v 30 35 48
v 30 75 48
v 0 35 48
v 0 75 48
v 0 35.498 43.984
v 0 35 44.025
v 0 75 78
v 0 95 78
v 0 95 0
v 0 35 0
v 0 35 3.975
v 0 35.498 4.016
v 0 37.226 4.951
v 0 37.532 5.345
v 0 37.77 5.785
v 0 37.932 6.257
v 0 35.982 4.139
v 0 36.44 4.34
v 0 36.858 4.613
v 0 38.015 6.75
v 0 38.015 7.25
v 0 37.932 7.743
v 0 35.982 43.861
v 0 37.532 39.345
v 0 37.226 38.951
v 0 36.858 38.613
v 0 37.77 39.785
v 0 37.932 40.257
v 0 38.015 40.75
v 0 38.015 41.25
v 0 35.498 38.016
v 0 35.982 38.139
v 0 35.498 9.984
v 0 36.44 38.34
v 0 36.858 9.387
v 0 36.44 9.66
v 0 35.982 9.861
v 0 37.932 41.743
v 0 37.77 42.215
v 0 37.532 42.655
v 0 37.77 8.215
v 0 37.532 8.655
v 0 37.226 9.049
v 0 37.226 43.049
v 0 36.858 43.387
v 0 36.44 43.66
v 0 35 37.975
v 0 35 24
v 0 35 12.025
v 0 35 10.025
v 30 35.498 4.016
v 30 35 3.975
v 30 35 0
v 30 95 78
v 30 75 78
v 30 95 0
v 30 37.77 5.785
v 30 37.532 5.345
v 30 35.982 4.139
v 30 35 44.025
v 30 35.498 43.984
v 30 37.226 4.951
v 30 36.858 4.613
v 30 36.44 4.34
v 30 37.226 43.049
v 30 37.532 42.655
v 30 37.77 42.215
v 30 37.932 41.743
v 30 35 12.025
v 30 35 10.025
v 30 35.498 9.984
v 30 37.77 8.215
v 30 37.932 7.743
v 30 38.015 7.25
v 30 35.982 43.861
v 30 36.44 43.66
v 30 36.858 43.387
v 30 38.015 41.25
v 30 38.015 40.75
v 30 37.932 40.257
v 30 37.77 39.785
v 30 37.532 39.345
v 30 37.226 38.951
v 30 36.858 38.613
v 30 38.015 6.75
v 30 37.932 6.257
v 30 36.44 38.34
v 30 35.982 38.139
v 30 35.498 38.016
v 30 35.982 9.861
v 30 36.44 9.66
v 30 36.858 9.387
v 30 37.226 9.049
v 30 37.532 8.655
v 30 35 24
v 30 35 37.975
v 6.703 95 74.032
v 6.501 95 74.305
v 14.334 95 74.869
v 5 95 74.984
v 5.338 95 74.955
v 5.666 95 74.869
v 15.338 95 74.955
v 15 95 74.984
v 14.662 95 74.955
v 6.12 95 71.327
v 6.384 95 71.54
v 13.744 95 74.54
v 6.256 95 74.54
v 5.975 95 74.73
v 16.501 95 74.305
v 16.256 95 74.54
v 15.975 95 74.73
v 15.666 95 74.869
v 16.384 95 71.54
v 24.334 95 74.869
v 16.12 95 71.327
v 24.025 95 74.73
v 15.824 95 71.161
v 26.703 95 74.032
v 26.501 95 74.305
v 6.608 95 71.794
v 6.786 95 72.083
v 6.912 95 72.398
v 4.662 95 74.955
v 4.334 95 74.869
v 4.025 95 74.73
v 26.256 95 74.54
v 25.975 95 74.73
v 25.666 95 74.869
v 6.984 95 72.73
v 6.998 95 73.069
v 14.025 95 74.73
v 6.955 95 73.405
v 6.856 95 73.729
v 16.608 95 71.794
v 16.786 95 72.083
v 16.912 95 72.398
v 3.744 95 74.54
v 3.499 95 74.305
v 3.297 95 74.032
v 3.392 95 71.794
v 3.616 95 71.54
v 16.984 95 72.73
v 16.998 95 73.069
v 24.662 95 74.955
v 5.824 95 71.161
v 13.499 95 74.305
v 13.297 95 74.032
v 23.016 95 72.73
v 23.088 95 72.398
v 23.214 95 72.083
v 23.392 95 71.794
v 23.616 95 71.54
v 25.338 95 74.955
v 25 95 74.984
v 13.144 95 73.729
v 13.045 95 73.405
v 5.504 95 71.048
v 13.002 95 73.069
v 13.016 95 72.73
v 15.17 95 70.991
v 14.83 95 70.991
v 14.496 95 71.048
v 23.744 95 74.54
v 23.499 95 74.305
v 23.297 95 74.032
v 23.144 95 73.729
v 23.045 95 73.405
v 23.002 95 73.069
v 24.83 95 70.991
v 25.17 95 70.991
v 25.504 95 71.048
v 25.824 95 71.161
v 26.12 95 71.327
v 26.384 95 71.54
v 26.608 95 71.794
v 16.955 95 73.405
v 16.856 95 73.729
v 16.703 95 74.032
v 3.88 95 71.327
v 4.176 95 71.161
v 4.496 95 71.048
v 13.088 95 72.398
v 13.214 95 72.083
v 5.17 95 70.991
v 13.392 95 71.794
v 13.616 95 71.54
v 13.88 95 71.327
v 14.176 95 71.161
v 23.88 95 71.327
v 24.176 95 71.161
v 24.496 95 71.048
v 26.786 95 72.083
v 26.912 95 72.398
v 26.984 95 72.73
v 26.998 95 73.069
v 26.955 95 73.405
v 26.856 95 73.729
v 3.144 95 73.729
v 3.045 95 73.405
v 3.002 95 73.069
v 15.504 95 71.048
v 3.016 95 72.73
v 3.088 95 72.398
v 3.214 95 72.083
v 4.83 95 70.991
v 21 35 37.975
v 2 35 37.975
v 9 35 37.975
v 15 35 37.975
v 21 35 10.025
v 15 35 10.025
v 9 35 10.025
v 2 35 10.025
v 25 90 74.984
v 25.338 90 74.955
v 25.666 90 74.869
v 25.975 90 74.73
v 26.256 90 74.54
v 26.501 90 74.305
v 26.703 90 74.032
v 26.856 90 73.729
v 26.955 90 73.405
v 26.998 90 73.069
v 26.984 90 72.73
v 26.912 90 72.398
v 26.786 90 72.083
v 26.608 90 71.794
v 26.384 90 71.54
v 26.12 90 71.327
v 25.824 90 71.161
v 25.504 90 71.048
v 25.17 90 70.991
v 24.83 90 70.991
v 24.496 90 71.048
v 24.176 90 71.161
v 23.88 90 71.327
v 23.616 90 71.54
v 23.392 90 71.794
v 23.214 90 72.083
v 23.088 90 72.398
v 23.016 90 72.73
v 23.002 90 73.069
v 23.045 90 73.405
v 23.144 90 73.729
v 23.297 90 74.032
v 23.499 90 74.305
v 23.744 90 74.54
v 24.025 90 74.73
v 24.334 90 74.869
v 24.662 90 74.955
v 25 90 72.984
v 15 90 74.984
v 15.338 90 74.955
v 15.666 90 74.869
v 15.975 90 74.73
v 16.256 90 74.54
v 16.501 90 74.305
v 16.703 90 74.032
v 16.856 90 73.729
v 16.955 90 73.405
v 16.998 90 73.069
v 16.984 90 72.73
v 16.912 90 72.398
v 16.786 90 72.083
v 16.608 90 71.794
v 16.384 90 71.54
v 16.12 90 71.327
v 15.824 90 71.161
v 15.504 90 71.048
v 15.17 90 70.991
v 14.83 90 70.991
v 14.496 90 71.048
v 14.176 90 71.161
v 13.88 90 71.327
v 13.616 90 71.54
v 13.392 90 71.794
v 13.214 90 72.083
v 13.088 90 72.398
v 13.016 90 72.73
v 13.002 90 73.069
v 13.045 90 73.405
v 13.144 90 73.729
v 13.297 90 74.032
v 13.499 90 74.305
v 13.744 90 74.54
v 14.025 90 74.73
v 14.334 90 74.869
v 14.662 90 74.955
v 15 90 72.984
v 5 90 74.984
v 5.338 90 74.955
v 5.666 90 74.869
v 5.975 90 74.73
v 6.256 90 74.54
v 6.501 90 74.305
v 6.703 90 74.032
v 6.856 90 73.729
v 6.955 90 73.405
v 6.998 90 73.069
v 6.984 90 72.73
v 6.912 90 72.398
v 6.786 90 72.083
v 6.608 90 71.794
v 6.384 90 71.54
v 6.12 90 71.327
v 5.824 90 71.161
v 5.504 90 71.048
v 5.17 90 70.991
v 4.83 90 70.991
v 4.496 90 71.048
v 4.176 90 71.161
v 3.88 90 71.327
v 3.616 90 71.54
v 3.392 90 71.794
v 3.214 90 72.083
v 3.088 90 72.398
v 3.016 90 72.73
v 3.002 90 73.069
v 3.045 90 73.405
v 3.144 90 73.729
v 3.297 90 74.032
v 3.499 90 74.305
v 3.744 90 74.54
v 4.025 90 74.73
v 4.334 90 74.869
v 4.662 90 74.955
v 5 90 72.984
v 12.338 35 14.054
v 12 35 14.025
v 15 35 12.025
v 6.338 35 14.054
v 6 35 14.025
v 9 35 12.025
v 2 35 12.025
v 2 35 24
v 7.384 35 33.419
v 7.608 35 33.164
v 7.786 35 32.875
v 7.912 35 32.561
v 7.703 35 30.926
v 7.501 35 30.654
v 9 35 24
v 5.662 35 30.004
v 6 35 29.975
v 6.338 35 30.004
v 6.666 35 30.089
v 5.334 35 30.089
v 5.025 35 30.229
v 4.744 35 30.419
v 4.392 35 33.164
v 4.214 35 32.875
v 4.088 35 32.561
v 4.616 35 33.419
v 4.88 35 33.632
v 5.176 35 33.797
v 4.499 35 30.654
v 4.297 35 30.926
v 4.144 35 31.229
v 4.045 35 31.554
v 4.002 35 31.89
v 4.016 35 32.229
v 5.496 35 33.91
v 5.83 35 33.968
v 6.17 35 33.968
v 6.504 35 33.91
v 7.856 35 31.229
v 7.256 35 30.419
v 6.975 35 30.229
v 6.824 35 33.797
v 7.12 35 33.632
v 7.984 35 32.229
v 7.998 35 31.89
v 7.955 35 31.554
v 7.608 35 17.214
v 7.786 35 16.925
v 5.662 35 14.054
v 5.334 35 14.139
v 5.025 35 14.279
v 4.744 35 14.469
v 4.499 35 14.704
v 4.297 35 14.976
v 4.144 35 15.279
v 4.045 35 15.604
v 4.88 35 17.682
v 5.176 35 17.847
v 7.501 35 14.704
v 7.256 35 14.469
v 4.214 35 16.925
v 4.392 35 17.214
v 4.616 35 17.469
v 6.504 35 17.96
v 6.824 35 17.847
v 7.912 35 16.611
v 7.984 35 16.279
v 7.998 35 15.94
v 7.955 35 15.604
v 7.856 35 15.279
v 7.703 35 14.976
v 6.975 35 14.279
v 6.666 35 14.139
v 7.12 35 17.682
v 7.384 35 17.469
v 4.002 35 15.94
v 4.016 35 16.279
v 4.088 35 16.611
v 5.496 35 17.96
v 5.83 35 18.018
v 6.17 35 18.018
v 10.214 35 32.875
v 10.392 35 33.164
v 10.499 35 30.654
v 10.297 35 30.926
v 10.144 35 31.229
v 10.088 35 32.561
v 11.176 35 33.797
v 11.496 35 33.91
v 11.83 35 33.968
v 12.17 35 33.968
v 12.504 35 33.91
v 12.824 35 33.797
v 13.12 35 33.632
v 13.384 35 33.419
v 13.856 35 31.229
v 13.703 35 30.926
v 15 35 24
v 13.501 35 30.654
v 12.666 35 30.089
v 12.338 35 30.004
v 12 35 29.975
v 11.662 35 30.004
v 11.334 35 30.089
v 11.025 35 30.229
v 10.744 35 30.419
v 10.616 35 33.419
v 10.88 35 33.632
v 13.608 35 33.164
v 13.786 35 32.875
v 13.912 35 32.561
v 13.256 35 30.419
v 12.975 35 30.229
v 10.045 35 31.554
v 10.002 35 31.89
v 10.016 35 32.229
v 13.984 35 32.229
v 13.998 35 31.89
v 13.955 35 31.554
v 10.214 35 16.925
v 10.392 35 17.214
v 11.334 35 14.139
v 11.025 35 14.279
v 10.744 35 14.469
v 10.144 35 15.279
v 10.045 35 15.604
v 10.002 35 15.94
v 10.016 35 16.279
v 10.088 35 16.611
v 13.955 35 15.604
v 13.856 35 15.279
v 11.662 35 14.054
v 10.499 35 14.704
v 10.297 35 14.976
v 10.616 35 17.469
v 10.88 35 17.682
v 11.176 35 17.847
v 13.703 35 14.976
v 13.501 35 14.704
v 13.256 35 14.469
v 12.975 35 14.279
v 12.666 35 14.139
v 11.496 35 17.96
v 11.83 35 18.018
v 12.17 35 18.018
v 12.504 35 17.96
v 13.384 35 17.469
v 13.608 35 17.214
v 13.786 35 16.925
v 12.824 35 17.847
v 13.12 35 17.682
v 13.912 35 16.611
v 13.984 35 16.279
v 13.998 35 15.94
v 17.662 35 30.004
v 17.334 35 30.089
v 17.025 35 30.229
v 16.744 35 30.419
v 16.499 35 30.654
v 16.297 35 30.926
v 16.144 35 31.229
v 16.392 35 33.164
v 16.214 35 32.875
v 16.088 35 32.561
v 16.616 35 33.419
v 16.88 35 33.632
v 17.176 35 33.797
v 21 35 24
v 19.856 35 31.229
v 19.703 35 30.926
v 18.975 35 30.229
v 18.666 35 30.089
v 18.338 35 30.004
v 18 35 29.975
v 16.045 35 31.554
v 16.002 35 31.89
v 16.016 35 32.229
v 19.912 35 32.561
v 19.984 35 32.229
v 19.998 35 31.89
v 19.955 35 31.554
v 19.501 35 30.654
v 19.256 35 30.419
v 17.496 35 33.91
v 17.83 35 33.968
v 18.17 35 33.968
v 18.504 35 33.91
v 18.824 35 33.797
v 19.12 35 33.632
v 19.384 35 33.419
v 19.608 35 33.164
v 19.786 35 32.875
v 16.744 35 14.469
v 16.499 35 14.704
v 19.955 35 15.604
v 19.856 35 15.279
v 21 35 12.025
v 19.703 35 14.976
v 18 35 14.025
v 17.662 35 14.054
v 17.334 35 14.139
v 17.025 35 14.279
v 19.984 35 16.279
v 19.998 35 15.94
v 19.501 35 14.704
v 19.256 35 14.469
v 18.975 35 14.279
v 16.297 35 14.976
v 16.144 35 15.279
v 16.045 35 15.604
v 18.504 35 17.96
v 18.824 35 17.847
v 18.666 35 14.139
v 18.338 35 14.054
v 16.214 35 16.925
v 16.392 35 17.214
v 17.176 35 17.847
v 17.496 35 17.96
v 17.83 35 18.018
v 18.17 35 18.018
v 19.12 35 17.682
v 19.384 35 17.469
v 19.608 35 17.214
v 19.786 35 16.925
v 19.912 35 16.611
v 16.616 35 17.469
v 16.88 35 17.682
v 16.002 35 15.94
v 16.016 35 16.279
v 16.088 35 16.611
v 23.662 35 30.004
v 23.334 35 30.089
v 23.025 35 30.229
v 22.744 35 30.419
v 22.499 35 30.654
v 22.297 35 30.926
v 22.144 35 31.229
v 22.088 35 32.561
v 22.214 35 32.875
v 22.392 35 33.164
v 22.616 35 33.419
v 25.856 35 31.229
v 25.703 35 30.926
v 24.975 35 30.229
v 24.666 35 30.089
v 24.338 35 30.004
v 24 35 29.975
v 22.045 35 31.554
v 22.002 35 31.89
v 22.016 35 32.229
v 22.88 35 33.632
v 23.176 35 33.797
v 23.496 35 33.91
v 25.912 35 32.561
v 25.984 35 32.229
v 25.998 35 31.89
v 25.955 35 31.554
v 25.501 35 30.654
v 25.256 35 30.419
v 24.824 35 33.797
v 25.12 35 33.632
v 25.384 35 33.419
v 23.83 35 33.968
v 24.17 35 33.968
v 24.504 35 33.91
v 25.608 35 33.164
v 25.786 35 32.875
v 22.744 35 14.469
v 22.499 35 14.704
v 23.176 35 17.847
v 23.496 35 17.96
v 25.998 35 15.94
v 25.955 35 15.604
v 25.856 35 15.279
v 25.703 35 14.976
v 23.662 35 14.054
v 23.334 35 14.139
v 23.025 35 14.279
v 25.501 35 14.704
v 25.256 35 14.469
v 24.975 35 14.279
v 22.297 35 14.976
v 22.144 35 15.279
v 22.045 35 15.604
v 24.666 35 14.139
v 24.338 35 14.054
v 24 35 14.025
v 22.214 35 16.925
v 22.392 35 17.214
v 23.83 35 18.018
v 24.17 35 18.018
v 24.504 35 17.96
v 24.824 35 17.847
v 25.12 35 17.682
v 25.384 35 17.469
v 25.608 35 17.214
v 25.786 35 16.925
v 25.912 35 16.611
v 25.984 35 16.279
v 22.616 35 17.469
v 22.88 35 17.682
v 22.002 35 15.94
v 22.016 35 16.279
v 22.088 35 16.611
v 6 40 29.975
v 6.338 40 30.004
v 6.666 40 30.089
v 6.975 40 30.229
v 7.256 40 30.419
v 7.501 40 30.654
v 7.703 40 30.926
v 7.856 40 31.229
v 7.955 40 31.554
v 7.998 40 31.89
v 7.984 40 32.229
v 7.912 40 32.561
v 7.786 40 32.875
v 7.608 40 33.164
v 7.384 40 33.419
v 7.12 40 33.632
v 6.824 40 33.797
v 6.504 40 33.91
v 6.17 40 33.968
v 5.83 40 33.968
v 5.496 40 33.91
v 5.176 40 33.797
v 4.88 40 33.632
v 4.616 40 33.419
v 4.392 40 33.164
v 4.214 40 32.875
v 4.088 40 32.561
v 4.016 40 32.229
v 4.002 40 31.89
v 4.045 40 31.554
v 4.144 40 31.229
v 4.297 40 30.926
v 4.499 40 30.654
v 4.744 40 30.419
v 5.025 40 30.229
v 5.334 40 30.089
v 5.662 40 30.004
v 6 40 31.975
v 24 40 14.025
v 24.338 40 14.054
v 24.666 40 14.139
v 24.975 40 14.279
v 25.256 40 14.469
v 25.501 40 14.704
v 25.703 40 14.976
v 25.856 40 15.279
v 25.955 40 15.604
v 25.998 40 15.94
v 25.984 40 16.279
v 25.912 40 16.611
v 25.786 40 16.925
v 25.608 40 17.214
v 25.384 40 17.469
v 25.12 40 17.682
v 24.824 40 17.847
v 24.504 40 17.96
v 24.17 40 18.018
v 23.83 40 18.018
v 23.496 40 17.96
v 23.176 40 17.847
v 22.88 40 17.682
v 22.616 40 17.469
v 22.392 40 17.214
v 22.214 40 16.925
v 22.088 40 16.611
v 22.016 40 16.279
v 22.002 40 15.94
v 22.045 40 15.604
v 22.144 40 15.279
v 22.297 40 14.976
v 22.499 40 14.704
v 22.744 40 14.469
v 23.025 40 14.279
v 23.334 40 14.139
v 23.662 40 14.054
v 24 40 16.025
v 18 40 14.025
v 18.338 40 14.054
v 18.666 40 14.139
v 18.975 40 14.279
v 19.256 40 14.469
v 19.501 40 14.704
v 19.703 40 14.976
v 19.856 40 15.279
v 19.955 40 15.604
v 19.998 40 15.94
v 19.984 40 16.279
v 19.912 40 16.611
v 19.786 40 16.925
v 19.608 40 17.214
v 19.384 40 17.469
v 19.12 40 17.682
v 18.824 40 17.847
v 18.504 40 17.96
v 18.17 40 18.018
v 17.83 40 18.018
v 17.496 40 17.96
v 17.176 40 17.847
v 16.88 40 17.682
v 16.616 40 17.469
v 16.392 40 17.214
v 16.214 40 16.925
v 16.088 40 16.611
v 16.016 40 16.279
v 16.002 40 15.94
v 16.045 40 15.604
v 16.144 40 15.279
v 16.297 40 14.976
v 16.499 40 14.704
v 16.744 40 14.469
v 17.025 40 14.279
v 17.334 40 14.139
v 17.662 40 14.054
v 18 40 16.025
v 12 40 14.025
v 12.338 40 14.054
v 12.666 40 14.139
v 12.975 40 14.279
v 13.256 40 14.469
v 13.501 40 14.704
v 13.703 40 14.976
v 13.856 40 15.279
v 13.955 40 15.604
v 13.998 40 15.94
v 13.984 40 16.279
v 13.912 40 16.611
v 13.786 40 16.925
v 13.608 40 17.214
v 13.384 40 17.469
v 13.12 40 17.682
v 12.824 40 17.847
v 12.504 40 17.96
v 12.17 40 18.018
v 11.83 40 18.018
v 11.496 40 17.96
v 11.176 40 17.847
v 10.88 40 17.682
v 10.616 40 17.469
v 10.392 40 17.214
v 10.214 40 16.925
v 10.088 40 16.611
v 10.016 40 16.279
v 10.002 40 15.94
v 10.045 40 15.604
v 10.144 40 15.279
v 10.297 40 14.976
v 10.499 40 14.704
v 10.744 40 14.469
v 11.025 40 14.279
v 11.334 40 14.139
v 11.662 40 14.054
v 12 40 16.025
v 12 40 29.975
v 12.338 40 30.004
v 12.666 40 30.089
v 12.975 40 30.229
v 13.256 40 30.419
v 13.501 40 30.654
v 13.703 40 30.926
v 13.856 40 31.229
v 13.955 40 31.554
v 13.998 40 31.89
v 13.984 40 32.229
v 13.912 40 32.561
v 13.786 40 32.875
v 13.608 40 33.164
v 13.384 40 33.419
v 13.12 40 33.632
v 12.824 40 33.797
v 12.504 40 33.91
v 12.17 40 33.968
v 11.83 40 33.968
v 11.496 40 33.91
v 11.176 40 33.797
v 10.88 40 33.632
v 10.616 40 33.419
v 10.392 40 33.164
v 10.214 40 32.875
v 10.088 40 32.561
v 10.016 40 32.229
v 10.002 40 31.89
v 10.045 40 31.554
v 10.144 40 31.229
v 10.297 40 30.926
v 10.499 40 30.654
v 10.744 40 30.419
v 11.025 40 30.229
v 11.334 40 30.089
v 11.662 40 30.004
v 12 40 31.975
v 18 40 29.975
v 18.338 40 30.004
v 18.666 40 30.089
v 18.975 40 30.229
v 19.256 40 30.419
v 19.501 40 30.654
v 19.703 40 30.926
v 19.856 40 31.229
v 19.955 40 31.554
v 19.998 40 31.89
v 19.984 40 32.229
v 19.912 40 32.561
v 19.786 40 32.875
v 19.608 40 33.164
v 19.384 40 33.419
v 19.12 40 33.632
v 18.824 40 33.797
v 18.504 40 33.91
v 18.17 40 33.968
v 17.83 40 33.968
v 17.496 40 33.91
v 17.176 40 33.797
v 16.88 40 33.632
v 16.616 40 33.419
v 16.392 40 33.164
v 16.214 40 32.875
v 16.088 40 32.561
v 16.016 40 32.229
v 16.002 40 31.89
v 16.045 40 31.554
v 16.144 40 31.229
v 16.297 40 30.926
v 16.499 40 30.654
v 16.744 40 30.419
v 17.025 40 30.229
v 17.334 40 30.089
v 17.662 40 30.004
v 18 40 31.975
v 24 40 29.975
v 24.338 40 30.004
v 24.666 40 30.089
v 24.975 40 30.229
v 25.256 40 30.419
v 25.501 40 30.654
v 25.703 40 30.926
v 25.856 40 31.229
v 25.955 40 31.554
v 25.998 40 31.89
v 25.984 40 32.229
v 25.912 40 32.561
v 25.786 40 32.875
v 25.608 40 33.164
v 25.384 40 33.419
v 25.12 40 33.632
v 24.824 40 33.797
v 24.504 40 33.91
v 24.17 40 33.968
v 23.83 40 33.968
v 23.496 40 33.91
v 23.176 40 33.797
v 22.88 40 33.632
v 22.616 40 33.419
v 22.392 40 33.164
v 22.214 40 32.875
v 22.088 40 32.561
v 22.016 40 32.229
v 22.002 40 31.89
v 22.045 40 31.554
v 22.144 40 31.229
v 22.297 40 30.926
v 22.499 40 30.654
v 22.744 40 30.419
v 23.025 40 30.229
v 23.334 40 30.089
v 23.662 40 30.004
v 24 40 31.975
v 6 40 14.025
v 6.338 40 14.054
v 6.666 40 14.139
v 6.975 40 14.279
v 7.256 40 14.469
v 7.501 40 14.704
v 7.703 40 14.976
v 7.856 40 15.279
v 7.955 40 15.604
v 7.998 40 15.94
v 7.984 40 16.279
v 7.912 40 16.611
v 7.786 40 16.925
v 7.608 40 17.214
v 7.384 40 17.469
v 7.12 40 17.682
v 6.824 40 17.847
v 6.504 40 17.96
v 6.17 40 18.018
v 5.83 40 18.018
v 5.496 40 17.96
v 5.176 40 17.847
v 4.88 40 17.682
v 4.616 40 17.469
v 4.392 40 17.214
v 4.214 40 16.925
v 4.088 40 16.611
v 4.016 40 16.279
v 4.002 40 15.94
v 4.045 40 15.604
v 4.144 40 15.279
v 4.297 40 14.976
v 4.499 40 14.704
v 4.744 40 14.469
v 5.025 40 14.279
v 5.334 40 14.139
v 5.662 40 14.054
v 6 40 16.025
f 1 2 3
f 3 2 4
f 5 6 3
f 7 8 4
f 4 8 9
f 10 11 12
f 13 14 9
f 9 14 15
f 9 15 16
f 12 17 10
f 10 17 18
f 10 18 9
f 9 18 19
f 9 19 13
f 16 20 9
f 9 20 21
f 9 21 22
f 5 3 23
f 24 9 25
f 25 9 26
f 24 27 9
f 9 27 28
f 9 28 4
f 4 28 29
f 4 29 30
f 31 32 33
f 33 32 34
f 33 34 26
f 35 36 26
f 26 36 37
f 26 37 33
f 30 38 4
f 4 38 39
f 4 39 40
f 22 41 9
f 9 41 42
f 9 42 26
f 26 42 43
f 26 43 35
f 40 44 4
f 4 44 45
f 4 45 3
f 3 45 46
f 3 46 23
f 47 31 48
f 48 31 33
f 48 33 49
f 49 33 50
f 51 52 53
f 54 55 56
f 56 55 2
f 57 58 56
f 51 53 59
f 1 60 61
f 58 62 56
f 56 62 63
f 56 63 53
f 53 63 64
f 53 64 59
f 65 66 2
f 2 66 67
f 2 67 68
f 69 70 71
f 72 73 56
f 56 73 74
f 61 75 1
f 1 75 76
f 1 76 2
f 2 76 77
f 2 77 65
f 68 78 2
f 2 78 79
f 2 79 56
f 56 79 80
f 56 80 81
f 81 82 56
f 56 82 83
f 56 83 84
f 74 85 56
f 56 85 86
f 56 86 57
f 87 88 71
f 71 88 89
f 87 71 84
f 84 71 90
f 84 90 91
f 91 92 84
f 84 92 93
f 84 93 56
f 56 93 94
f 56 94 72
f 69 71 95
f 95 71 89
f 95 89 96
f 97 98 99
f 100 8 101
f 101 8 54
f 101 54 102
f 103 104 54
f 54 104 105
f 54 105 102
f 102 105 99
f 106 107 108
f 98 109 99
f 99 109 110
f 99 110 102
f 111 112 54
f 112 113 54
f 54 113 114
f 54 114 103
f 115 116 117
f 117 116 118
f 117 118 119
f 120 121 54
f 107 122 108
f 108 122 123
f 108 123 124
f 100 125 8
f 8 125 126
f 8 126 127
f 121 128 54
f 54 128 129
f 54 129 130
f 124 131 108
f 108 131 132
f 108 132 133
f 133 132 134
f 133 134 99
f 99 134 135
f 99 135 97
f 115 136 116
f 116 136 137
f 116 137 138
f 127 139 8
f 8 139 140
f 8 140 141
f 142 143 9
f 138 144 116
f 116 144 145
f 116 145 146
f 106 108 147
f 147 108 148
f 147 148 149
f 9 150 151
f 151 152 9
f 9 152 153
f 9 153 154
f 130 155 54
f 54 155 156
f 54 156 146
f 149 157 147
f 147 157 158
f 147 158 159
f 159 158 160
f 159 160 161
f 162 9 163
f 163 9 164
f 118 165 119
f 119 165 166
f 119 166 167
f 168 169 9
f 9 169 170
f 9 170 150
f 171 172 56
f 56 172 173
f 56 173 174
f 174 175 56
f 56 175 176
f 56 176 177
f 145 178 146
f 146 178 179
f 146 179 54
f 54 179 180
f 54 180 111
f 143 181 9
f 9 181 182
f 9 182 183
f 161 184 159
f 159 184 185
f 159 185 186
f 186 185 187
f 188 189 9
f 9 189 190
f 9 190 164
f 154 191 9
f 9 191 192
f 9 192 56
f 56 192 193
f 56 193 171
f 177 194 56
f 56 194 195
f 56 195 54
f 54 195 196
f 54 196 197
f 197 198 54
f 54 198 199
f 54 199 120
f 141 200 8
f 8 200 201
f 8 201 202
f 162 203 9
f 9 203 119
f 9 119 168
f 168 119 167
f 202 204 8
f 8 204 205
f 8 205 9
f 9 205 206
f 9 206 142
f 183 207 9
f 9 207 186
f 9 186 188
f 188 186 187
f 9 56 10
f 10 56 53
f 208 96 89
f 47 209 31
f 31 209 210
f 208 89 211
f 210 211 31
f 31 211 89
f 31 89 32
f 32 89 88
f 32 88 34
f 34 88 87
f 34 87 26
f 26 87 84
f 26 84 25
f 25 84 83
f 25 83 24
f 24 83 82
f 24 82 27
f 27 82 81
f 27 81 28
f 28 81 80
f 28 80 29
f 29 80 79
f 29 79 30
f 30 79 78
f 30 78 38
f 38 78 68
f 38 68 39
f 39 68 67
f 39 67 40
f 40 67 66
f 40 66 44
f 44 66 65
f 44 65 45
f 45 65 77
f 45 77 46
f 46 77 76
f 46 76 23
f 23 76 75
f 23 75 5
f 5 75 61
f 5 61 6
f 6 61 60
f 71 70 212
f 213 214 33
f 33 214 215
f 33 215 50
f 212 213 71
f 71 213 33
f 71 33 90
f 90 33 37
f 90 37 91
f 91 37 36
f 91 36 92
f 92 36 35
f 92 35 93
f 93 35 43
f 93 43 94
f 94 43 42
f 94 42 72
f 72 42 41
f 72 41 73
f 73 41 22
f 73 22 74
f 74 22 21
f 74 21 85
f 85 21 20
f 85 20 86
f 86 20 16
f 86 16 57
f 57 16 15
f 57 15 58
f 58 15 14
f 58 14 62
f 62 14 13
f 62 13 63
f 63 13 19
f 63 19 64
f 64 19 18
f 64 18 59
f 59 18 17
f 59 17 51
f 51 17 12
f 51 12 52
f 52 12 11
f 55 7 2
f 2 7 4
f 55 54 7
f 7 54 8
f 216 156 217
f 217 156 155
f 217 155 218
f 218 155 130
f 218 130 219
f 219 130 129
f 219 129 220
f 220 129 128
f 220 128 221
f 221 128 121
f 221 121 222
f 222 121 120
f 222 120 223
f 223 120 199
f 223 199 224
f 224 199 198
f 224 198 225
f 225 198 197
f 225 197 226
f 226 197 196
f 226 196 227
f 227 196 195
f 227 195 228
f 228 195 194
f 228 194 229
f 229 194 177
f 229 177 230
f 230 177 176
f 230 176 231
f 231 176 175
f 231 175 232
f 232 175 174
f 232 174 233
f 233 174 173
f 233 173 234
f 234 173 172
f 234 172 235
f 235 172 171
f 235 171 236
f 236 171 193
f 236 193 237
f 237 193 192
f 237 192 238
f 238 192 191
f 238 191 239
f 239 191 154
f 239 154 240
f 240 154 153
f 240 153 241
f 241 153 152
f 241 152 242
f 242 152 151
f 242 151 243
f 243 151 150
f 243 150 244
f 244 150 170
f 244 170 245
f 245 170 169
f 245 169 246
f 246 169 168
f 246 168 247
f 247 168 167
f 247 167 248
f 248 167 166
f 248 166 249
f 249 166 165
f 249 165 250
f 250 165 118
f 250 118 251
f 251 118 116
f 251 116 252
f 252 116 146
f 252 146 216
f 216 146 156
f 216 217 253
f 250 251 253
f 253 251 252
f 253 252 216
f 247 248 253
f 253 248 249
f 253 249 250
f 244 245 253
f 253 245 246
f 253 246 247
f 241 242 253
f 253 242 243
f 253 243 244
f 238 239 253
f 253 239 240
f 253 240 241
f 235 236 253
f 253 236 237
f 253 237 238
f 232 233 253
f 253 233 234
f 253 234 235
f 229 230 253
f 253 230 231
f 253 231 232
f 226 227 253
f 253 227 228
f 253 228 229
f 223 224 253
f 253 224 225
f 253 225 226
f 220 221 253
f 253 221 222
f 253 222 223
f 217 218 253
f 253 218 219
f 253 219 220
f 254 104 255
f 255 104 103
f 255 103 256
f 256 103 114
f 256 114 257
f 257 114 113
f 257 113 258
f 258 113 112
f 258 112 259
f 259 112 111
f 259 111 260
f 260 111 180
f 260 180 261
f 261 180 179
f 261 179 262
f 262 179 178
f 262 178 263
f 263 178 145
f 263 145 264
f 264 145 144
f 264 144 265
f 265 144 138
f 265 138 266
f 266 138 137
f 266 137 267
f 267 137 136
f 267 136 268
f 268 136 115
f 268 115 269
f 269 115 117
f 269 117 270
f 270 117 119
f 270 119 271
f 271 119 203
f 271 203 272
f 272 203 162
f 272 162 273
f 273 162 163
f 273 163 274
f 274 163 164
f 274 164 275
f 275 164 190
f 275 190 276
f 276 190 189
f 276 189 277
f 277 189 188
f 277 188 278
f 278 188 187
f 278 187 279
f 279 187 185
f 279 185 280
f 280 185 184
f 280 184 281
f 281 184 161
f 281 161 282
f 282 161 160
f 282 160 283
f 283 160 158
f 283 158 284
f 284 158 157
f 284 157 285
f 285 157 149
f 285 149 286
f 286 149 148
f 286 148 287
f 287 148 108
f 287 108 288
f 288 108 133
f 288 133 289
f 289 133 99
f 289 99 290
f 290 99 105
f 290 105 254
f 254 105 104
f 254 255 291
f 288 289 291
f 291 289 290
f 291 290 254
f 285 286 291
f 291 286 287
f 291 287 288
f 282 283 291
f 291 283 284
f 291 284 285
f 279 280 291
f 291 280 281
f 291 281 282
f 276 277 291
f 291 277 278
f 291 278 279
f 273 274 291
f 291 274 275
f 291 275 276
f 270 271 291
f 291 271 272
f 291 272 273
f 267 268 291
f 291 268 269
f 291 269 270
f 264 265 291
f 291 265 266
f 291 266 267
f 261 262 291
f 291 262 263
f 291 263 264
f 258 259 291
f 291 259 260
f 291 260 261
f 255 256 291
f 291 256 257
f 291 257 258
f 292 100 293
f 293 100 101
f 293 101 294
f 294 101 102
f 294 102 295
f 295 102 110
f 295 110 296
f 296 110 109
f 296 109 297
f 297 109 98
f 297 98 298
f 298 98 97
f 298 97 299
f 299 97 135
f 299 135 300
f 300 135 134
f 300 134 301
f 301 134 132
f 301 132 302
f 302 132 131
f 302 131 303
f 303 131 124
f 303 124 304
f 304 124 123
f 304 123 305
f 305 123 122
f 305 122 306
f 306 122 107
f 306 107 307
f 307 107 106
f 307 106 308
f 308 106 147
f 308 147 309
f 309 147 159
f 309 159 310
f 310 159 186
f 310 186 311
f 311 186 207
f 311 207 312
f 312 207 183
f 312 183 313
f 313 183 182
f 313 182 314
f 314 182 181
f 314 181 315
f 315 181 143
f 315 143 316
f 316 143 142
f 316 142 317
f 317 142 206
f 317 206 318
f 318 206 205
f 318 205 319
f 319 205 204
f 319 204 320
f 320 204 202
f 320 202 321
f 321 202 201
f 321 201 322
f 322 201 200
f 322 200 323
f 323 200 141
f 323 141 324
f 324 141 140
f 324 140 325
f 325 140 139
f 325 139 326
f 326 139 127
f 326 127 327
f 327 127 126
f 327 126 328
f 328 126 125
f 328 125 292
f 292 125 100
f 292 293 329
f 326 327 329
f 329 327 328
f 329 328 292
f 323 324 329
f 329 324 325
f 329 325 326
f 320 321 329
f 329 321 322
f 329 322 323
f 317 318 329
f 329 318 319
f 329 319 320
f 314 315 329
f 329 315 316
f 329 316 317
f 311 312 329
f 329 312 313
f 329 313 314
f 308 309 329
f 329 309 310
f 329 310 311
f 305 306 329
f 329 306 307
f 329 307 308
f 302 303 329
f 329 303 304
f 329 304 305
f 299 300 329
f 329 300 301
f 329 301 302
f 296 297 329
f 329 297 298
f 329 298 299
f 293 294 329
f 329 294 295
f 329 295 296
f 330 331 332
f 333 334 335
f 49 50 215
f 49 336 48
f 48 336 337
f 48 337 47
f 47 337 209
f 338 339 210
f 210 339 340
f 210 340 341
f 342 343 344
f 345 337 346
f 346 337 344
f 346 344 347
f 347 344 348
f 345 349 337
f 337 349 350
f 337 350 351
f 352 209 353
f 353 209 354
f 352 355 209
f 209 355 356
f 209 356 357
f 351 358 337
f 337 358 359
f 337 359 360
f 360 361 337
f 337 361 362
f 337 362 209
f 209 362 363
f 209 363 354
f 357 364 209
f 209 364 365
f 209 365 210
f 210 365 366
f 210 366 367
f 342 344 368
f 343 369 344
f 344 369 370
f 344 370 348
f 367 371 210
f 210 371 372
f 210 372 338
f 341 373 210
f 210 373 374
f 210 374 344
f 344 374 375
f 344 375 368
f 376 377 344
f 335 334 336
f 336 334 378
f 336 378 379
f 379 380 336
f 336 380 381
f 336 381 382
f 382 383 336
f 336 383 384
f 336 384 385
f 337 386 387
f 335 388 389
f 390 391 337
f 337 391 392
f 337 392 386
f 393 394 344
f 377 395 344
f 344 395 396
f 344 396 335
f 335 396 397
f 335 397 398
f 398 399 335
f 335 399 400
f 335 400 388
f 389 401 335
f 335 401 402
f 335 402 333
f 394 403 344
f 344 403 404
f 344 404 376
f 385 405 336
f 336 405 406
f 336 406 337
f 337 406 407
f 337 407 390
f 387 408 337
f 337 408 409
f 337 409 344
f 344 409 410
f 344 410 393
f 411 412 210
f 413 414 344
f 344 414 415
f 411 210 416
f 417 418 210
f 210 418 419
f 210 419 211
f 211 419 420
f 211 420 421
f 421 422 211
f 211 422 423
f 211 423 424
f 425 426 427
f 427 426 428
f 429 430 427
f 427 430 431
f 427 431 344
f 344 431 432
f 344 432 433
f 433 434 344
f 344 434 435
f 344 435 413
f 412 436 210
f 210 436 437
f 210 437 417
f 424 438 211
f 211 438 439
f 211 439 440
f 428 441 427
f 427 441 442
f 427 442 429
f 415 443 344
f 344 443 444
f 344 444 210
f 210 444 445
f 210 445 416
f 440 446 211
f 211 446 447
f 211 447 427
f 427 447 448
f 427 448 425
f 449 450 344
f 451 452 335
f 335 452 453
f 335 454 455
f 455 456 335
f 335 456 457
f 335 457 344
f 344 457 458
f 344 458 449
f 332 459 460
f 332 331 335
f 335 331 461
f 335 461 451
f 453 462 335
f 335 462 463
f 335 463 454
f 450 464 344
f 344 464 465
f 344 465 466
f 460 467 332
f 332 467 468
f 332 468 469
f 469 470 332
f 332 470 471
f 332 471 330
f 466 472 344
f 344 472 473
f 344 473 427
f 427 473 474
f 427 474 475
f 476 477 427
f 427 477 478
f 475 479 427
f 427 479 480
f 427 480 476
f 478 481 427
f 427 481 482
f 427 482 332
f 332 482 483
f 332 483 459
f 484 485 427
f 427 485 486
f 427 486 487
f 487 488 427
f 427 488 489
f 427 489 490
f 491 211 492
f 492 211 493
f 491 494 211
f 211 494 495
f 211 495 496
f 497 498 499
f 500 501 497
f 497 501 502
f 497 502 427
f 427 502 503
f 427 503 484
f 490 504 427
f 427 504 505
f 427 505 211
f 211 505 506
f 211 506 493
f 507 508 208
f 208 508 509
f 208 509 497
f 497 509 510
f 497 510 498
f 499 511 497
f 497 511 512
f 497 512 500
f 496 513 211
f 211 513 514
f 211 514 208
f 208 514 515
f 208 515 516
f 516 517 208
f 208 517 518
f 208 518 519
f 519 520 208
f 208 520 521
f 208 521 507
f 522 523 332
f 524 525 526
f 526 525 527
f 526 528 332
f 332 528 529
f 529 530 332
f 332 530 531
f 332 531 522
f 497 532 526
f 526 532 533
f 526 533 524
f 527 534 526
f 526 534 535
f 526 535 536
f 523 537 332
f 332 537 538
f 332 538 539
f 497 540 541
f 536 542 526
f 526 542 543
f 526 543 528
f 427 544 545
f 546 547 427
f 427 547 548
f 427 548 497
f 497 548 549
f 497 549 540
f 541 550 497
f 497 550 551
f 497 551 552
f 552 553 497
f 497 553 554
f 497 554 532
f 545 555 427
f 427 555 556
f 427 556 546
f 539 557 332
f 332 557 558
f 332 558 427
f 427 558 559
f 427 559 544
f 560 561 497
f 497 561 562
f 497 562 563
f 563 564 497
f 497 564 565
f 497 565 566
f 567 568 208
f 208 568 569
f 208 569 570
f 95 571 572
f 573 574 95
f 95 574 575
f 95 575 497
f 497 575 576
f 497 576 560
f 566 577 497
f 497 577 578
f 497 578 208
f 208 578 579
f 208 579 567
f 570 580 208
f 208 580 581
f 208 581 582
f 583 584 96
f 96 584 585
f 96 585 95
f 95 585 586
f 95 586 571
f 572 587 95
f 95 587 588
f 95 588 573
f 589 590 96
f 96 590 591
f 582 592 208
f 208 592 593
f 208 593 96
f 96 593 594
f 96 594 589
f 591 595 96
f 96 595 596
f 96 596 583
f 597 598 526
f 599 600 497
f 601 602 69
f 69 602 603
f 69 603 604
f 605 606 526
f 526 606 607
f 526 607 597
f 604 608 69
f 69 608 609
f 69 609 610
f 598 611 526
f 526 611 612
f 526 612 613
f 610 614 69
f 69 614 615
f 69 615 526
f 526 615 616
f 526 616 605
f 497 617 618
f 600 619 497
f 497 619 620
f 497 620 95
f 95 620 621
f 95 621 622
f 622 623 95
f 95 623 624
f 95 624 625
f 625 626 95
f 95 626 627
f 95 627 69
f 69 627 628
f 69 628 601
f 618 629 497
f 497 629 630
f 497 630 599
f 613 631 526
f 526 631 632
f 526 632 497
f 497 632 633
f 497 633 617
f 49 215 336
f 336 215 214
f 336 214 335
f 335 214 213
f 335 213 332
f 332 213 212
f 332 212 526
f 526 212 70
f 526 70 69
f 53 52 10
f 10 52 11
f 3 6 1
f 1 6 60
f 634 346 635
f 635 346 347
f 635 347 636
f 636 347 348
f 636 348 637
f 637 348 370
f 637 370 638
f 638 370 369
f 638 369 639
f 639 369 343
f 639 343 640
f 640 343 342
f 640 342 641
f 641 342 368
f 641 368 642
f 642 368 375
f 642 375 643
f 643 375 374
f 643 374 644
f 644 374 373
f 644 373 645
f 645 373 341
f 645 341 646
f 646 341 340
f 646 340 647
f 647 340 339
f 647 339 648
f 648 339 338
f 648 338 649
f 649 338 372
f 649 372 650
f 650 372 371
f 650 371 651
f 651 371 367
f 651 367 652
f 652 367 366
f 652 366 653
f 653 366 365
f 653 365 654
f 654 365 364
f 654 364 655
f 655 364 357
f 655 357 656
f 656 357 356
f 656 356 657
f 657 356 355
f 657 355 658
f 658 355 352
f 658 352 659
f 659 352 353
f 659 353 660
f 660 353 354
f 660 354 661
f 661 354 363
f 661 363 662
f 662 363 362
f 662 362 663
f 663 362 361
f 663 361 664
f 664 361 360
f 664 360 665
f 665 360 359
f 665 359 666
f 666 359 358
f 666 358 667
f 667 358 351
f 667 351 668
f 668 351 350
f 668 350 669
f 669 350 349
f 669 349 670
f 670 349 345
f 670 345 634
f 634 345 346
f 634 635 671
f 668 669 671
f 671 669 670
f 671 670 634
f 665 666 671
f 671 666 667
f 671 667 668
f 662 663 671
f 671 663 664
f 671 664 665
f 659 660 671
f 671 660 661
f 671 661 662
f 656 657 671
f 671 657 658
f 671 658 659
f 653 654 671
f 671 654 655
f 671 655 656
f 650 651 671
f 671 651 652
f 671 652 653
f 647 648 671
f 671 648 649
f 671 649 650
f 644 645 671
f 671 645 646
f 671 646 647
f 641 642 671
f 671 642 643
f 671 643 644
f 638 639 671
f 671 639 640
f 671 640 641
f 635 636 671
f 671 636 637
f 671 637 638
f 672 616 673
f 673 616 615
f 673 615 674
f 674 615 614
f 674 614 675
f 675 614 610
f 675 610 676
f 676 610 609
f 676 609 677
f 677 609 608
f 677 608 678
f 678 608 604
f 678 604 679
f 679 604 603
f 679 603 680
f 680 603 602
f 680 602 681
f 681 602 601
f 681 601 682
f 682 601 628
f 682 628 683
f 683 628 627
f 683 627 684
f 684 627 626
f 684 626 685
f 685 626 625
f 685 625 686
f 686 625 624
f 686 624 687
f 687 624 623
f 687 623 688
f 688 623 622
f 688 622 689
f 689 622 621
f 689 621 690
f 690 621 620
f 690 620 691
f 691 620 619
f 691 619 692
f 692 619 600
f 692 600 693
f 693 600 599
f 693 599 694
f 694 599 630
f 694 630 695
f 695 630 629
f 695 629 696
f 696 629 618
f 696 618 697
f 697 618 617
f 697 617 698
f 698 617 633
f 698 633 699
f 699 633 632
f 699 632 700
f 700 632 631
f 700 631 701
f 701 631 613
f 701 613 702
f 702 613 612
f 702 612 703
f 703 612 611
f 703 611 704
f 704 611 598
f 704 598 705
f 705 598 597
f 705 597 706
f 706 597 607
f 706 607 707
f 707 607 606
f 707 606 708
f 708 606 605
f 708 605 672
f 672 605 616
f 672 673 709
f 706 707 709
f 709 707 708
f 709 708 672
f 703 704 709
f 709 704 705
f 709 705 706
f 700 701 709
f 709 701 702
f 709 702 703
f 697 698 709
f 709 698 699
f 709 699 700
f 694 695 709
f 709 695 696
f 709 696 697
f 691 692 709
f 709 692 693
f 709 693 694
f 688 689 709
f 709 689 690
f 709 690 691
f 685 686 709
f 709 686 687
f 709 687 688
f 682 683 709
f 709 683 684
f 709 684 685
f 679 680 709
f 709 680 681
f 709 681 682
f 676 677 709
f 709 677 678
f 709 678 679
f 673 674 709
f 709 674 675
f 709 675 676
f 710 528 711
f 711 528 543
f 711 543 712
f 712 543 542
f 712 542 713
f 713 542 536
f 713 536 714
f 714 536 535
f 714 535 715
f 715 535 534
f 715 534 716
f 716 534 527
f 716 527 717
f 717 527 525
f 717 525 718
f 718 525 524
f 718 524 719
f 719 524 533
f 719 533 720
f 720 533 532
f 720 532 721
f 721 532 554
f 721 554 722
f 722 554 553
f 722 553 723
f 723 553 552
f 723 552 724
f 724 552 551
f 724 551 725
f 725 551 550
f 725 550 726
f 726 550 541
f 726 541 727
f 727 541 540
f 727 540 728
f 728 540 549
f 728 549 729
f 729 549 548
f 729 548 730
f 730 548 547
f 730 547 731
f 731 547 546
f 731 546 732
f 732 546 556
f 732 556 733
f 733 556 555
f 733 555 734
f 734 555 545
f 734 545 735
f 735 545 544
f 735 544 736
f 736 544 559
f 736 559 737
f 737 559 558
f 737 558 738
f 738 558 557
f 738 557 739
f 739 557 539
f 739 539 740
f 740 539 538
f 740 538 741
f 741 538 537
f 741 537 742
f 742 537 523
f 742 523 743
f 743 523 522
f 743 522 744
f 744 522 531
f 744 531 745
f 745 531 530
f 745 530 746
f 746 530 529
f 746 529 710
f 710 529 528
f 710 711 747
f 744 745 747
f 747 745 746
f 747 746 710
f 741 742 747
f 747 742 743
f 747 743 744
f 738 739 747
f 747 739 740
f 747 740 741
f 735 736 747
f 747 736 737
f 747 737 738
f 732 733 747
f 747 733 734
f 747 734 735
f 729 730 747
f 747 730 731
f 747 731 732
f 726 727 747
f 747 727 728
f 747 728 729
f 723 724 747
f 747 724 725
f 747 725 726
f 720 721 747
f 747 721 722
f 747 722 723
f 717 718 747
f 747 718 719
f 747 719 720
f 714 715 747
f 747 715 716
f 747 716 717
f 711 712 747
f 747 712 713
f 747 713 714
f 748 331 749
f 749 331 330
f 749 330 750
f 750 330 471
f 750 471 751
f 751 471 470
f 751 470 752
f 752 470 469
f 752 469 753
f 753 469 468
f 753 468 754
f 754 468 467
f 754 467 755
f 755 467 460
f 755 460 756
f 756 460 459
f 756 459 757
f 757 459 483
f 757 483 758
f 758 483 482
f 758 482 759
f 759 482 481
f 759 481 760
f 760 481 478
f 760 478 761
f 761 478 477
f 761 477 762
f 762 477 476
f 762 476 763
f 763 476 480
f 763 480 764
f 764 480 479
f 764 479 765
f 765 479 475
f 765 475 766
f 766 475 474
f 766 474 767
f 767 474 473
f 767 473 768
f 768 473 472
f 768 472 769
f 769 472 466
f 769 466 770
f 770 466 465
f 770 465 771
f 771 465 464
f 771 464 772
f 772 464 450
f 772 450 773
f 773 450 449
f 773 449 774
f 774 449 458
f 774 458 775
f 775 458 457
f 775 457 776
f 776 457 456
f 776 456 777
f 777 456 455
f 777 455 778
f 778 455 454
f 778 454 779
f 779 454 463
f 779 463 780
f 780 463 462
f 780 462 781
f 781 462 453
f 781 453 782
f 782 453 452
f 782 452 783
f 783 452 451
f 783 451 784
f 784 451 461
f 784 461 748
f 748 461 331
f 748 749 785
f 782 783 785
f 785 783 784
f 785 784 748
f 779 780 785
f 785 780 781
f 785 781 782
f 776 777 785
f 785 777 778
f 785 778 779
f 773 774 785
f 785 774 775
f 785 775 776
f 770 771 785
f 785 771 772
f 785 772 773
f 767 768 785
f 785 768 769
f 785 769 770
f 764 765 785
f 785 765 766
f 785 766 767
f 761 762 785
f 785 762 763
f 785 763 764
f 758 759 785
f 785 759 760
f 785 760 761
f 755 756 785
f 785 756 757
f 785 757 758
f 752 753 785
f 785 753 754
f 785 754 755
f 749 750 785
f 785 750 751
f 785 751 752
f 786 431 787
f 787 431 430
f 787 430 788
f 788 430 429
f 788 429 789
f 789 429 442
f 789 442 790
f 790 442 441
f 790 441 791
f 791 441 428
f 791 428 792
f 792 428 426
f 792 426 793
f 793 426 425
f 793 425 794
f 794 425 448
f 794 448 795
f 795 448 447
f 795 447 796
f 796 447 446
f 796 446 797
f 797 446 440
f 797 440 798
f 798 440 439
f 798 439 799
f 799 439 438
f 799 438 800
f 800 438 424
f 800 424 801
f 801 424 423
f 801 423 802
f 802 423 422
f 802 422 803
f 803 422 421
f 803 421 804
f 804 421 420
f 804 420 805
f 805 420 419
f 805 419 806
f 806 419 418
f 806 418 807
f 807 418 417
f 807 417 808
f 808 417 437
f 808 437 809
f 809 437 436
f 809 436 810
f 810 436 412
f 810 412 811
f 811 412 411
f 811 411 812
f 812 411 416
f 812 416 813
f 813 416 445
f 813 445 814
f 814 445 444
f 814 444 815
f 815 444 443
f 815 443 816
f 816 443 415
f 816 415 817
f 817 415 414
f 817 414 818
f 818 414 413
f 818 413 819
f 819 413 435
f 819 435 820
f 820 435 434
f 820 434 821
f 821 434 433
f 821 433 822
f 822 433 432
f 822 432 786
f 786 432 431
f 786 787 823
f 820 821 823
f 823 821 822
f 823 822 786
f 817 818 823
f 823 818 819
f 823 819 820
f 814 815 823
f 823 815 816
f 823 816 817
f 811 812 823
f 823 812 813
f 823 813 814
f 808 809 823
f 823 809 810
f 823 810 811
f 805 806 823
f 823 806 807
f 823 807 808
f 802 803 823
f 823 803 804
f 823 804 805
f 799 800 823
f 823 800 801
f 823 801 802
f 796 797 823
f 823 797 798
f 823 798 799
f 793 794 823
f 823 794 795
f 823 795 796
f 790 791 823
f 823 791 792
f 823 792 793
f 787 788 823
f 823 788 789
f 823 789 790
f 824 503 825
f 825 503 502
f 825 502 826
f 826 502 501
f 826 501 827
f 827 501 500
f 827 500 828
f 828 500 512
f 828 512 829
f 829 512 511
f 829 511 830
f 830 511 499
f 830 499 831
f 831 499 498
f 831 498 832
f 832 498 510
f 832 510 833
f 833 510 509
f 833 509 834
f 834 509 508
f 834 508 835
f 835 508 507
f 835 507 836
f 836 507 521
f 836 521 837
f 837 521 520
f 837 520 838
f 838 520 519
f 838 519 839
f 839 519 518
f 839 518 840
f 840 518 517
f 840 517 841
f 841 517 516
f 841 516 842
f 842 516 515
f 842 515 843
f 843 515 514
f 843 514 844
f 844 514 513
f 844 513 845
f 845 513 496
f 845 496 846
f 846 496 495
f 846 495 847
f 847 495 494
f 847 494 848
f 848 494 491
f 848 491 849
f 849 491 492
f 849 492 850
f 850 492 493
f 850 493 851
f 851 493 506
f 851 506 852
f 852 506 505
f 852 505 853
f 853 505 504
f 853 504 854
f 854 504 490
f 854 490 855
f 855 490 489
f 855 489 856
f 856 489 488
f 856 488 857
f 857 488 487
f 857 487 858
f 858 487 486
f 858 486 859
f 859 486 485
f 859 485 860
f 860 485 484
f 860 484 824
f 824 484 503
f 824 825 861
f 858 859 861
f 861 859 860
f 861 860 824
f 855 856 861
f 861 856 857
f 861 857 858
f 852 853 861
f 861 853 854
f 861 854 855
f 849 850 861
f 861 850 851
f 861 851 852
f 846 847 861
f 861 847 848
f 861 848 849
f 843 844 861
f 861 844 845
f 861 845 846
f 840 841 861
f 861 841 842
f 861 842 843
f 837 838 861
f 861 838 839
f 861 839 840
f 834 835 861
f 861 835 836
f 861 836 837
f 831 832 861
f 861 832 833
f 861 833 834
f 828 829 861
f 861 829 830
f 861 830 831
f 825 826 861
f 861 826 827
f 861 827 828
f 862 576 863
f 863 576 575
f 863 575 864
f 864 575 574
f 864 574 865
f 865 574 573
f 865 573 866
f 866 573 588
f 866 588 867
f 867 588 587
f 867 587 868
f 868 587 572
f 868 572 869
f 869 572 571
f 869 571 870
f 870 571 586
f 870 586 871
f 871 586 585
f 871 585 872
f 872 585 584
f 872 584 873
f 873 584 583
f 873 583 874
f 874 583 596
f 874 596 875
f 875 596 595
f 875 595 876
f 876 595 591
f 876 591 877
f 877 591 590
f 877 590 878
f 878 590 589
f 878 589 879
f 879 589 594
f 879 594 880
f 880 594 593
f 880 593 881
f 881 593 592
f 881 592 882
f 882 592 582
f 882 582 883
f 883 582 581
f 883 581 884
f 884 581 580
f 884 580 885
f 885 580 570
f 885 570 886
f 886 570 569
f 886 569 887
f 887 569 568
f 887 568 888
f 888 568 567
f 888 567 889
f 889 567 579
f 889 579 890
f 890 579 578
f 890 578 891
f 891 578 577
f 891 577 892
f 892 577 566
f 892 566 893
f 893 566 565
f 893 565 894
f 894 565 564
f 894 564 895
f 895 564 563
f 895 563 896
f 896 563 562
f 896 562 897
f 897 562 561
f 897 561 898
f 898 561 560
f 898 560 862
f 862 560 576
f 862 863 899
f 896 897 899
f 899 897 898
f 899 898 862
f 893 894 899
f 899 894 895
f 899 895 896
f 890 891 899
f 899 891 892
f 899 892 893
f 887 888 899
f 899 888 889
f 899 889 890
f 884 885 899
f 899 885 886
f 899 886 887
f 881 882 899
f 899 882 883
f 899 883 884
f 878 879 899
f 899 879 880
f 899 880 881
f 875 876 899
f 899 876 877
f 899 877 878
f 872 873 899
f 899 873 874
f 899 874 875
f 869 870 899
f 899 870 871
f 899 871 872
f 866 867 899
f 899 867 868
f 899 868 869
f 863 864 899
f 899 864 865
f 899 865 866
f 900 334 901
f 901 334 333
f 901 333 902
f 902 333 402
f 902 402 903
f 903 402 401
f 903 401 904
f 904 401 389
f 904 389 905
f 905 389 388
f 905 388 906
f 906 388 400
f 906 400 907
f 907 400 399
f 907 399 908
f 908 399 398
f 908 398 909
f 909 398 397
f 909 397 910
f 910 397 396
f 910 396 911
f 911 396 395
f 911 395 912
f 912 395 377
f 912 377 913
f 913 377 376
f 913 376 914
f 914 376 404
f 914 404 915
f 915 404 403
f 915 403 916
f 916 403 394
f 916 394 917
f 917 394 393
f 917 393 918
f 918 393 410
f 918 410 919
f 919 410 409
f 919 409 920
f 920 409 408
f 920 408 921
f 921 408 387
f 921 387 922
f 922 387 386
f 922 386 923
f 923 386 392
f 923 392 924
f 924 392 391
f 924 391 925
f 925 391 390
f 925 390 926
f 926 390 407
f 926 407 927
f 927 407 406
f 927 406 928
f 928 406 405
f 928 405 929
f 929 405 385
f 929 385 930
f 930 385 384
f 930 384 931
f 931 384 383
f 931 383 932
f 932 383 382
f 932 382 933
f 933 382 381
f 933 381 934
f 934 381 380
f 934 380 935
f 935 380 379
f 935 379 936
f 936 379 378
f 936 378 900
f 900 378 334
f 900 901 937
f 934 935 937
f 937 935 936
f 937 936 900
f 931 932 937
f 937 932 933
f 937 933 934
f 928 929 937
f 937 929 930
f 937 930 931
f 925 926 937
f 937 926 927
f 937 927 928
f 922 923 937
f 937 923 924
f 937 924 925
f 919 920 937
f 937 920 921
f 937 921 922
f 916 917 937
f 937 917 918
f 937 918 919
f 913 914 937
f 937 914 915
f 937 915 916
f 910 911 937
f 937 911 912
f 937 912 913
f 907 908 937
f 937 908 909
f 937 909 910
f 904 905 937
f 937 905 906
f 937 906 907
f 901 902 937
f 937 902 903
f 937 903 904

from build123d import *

# Parameters (mm, degrees)
SKETCH_1_W          = 30
SKETCH_1_H          = 95
EXTRUDE_1_DEPTH     = 48
SKETCH_2_R          = 3.025
SKETCH_2_R_2        = 3.005
CUT_EXTRUDE_1_DEPTH = 46
SKETCH_3_W          = 30
SKETCH_3_H          = 20
EXTRUDE_2_DEPTH     = 30
SKETCH_4_R          = 2
CUT_EXTRUDE_2_DEPTH = 5
SKETCH_5_W          = 48
SKETCH_5_H          = 35
CUT_EXTRUDE_3_DEPTH = 127.526677029
SKETCH_6_R          = 2
CUT_EXTRUDE_4_DEPTH = 5


with BuildPart() as part:
    # 草图1 → 凸台-拉伸1 (new body)
    with BuildSketch(Plane.XY):
        with Locations((15, 47.5)):
            Rectangle(SKETCH_1_W, SKETCH_1_H)
    extrude(amount=EXTRUDE_1_DEPTH)

    # 草图2 → 切除-拉伸1 (cut)
    # profile 1 of 2: a face of its own
    with BuildSketch(Plane.ZY):
        with Locations((7, 35)):
            Circle(SKETCH_2_R)
        with Locations((7, 35)):
            Circle(SKETCH_2_R_2, mode=Mode.SUBTRACT)
    # profile 2 of 2: a face of its own
    with BuildSketch(Plane.ZY):
        with Locations((41, 35)):
            Circle(SKETCH_2_R)
        with Locations((41, 35)):
            Circle(SKETCH_2_R_2, mode=Mode.SUBTRACT)
    extrude(amount=-CUT_EXTRUDE_1_DEPTH, mode=Mode.SUBTRACT)


with BuildPart() as cut_extrude_1_kept_piece:
    # of the separate pieces the step leaves, the one the design keeps (cut_extrude_1_pieces_kept)
    add(part.part.solids().sort_by_distance((0, 0, 0))[0])

    # 草图3 → 凸台-拉伸2 (add)
    with BuildSketch(Plane.XY.offset(48)):
        with Locations((15, 85)):
            Rectangle(SKETCH_3_W, SKETCH_3_H)
    extrude(amount=EXTRUDE_2_DEPTH)

    # 草图4 → 切除-拉伸2 (cut)
    with BuildSketch(Plane(origin=(0, 95, 0), x_dir=(1, 0, 0), z_dir=(0, 1, 0))):
        with Locations(Location((5, -72.983651548, 0), (0, 0, 270))):
            Circle(SKETCH_4_R)
        with Locations(Location((15, -72.983651548, 0), (0, 0, 270))):
            Circle(SKETCH_4_R)
        with Locations(Location((25, -72.983651548, 0), (0, 0, 270))):
            Circle(SKETCH_4_R)
    extrude(amount=-CUT_EXTRUDE_2_DEPTH, mode=Mode.SUBTRACT)

    # 草图5 → 切除-拉伸3 (cut, through all)
    with BuildSketch(Plane.ZY):
        with Locations((24, 17.5)):
            Rectangle(SKETCH_5_W, SKETCH_5_H)
    extrude(amount=-CUT_EXTRUDE_3_DEPTH, mode=Mode.SUBTRACT)

    # 草图6 → 切除-拉伸4 (cut)
    with BuildSketch(Plane.XZ.offset(-35)):
        with Locations(Location((6, 31.975, 0), (0, 0, 270))):
            Circle(SKETCH_6_R)
        with Locations(Location((12, 31.975, 0), (0, 0, 270))):
            Circle(SKETCH_6_R)
        with Locations(Location((18, 31.975, 0), (0, 0, 270))):
            Circle(SKETCH_6_R)
        with Locations(Location((24, 31.975, 0), (0, 0, 270))):
            Circle(SKETCH_6_R)
        with Locations(Location((6, 16.025, 0), (0, 0, 270))):
            Circle(SKETCH_6_R)
        with Locations(Location((12, 16.025, 0), (0, 0, 270))):
            Circle(SKETCH_6_R)
        with Locations(Location((18, 16.025, 0), (0, 0, 270))):
            Circle(SKETCH_6_R)
        with Locations(Location((24, 16.025, 0), (0, 0, 270))):
            Circle(SKETCH_6_R)
    extrude(amount=-CUT_EXTRUDE_4_DEPTH, mode=Mode.SUBTRACT)


solid = cut_extrude_1_kept_piece.part
